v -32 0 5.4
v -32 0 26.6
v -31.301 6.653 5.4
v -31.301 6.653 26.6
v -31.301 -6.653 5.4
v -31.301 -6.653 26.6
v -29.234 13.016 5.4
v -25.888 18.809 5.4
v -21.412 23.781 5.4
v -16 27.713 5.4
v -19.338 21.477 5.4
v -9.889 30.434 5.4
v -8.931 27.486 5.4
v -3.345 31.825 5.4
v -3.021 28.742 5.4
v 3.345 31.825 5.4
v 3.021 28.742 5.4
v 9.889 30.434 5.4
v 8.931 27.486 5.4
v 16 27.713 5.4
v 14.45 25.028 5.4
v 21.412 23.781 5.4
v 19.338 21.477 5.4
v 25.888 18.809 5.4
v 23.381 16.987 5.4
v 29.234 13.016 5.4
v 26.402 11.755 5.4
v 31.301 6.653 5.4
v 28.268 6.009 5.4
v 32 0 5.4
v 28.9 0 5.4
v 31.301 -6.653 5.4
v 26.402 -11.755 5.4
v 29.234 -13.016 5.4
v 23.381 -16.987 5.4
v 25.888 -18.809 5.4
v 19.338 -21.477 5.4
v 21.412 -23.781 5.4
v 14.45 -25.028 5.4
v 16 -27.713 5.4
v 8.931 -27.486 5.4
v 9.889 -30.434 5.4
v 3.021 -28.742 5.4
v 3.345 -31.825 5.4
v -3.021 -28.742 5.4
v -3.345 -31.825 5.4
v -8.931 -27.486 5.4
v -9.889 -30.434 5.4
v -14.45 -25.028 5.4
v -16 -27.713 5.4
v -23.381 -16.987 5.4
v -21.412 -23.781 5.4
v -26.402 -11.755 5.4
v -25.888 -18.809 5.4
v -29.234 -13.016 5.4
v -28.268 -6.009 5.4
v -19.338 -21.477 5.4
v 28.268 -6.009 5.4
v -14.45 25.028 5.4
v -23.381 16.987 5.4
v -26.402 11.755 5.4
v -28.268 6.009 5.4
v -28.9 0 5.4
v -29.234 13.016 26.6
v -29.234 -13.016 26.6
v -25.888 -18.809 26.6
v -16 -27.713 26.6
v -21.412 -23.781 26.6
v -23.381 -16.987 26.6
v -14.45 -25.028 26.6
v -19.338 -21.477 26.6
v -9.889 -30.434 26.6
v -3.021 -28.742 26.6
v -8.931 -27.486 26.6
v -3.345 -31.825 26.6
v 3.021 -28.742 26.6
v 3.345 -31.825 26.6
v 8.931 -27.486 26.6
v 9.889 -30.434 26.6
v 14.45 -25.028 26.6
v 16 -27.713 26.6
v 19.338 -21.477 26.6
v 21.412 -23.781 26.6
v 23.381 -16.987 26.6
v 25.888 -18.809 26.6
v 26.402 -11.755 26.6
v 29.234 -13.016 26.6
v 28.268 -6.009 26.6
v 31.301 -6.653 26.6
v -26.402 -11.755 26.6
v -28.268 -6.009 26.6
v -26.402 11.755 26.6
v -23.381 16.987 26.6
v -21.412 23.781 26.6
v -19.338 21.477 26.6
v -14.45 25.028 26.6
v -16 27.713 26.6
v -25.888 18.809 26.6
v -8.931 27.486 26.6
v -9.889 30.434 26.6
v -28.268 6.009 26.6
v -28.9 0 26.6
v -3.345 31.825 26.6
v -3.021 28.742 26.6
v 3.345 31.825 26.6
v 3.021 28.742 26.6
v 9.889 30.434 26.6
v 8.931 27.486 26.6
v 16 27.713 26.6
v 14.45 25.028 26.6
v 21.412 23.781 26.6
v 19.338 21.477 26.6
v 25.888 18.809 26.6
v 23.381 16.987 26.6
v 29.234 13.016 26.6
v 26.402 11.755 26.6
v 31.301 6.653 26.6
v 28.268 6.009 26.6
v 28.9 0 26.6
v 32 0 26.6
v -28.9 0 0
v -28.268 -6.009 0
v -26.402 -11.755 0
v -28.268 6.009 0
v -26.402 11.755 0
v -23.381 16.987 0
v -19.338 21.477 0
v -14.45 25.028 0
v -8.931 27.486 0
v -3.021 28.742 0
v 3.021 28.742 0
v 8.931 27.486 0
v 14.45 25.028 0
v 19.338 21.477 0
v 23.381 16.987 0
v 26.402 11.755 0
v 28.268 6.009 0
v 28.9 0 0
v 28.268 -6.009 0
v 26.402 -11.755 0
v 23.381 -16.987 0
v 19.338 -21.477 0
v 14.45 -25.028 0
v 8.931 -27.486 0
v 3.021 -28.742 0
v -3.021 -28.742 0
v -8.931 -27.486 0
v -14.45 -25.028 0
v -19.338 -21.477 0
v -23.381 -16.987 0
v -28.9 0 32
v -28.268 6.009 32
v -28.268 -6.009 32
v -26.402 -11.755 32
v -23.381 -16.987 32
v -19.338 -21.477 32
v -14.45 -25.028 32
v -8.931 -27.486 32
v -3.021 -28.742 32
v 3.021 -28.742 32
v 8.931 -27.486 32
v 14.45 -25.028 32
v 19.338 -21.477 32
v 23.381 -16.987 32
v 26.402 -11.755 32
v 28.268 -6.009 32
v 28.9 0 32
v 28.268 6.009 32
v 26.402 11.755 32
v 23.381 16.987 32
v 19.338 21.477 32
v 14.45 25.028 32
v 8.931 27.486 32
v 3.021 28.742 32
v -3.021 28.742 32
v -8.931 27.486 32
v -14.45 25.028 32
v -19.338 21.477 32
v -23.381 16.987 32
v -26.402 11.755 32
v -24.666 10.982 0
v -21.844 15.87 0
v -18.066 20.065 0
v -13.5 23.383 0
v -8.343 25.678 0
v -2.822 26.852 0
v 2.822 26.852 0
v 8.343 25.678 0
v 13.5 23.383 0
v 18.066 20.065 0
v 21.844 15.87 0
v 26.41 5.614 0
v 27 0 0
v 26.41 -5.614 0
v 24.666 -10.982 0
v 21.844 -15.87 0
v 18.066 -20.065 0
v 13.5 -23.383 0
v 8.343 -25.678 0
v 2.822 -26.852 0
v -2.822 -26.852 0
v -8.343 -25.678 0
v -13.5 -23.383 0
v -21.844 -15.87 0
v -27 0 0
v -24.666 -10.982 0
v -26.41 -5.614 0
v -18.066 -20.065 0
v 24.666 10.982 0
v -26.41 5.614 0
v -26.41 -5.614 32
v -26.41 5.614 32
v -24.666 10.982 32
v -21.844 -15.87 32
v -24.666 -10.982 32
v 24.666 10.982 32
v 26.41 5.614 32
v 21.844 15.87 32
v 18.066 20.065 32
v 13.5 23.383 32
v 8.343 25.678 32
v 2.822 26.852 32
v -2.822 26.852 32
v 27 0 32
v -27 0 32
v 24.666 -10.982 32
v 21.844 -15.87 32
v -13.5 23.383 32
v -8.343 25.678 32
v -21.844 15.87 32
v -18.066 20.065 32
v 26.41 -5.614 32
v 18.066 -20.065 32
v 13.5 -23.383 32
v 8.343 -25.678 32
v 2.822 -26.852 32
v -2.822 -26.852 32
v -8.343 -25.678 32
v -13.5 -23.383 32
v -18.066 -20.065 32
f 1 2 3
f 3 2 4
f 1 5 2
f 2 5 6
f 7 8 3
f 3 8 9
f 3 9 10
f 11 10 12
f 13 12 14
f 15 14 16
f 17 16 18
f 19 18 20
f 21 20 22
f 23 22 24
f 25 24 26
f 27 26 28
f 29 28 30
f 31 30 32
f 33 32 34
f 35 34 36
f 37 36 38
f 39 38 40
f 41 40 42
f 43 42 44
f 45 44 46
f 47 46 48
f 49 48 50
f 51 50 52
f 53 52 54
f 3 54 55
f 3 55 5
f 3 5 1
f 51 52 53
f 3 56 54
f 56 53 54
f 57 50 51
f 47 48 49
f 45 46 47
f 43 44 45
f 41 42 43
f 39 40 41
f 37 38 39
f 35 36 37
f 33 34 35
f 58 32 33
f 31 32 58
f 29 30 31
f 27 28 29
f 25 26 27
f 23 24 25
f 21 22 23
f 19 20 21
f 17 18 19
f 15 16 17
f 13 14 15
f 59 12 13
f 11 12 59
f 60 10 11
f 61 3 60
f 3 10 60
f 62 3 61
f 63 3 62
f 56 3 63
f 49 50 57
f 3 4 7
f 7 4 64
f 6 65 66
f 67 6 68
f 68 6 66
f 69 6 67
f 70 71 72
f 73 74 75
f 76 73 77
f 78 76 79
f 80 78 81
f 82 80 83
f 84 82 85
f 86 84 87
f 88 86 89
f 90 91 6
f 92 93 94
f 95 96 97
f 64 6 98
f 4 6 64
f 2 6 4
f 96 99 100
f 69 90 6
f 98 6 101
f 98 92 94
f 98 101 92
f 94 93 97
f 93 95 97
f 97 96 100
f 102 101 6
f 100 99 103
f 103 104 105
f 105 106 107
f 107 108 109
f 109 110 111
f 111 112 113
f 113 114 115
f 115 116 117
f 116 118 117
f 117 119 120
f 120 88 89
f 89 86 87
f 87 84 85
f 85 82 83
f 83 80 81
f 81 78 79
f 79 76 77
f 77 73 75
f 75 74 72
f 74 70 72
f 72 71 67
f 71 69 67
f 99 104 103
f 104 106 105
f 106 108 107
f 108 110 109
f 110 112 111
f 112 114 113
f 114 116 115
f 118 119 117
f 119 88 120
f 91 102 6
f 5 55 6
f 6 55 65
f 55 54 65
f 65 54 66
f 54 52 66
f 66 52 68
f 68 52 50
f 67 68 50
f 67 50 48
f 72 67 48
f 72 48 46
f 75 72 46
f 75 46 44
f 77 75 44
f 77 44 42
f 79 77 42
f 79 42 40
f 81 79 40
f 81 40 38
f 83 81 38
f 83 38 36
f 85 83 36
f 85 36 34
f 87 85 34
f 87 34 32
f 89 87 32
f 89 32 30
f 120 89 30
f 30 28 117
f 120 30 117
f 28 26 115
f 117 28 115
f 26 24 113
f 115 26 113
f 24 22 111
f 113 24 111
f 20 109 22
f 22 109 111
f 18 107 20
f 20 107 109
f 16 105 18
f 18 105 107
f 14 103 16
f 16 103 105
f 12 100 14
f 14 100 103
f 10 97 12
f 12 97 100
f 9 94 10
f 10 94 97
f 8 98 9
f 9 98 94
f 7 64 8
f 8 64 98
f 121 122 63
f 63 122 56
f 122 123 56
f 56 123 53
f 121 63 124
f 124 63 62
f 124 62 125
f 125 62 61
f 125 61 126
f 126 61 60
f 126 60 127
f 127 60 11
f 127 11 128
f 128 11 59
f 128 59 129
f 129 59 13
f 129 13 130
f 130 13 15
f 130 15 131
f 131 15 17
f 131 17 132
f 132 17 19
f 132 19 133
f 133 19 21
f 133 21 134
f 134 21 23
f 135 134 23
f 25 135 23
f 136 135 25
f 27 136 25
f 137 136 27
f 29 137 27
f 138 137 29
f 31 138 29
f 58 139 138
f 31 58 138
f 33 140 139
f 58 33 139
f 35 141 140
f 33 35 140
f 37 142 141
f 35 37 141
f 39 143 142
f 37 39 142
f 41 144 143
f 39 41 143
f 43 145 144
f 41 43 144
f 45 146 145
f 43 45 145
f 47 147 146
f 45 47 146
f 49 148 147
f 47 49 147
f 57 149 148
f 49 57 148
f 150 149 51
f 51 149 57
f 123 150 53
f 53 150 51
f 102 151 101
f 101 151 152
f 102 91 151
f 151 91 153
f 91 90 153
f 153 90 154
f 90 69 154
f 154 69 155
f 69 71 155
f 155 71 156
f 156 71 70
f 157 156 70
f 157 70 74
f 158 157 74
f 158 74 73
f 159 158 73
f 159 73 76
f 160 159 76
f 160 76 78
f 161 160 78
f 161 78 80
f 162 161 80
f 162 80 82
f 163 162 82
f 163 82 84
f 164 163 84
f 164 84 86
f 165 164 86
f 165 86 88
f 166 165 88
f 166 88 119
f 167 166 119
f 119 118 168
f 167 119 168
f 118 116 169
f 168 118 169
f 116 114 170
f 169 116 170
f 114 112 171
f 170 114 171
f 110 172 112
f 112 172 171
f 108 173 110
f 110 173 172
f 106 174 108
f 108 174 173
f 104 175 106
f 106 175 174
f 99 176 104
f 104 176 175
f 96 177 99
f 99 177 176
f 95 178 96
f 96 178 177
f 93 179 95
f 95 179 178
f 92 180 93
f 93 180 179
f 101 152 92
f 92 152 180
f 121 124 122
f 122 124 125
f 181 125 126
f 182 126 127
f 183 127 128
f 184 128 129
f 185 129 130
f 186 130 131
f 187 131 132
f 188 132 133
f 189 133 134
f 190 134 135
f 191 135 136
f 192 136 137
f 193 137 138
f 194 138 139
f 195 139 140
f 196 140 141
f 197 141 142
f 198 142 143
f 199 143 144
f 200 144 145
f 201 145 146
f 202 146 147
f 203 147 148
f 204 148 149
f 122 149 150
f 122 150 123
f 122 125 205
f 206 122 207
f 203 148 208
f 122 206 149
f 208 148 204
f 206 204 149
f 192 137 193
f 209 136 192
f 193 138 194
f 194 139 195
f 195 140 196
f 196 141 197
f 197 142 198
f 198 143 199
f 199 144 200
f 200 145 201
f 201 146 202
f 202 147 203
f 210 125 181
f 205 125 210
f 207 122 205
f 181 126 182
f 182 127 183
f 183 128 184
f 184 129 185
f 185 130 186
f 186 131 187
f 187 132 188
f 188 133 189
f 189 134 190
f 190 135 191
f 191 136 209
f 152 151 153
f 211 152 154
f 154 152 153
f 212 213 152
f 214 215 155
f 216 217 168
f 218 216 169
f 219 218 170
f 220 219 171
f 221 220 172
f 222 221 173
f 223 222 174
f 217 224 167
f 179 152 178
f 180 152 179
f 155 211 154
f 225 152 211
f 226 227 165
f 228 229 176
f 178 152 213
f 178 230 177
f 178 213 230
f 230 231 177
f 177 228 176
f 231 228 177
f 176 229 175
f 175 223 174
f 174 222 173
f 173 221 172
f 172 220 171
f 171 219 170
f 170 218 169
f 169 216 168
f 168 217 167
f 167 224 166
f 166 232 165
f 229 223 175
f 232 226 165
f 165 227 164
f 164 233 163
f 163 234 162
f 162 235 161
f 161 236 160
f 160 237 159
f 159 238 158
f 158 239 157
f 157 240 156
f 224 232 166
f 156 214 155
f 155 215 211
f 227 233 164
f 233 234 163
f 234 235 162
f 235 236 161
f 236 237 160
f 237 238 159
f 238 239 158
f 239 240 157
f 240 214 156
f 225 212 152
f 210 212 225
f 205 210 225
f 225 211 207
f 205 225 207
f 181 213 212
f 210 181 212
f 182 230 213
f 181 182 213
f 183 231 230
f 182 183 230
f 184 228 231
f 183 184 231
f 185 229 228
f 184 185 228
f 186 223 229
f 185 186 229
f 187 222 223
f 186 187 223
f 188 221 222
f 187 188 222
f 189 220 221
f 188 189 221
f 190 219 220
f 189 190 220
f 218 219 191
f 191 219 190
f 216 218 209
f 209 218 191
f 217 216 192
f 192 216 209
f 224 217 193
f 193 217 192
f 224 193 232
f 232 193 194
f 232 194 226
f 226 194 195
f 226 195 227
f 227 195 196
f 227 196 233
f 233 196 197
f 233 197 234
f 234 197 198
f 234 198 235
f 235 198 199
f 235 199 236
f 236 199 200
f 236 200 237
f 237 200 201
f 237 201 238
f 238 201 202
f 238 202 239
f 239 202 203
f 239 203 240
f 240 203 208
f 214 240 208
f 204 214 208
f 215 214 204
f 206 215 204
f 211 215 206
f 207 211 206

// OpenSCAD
//Ancho de la pared
pared  = 3;
//Radio del centro hueco
radioC = 11;
//Alto de la capa de apertura
aperH = 6;
//Ancho de la apertura
aperW = 5;
//Ancho del lente macro
macroW = 9.3;
//Profundidad del macro
macroH = 3;
//Profundidad parte de atras y delante
profDelante = 6;
profAtras = 6;

//
//Alto del cilindro del Macro
conH = 10;
//Ancho de la base del macro
macroBW = 9;
macroFH = 6;
macroFW = 10;

//
//Cilindro del MacroConnector
mcW = 32;
mcH = 20;
mcConnH = 8.5;//Altura connector a ranura
mcPared = 5;
mcCejaH = 6;

//
// Cilindro del diffracter
diffH = 20;
diffBase = 2;

diffAreaX = 36;
diffAreaY = 25;
diffAreaZ = (3*diffBase);

diffBaseX = diffAreaX+10;
diffBaseY = diffAreaY+10;
diffBaseZ = diffBase;

difference(){	
	cylinder(r=mcW,diffH+(2*mcCejaH));

	translate([0, 0, -0.1])
	cejaExterior();

	translate([0, 0, diffH+mcCejaH+0.6])
	cejaExterior();

	translate([0, 0, -0.1])
	cylinder(r=mcW-mcPared,diffH+(2*mcCejaH)+1);

}


module cejaExterior(){	
	difference(){
		cylinder(r=mcW+1,mcCejaH-0.5);
		translate([0, 0, -0.1])
		cylinder(r=mcW-3.1,mcCejaH+0.1);
	}
}

module Macro(){
	difference(){
		cylinder(r=radioC+pared,mcConnH+conH-0.1);

		translate([0, 0, -0.5])
		cylinder(r=radioC+0.1,mcConnH);

		translate([0, 0, mcConnH-0.6])
		cylinder(r=macroBW,conH+0.6);
	
		translate([0, 0, mcConnH-0.6])
		cylinder(r=macroFW, macroFH+0.6);

	}
}



module cilindroPared(h){
	translate([0, 0, h/2]){
		difference(){
			cylinder(r=radioC+pared,h, center=true);
			cylinder(r=radioC,h+2, center=true);
		}
	}
}

module apertura(){
	//Crea apertura
	translate([0, 0, (aperH/2)+profDelante ]){
		difference(){
			cylinder(r=radioC+1,aperH,center=true);
			translate([0, 0, aperH-macroH]){
				cylinder(r=macroW/2,aperH,center=true);
			}
			cube([aperW,aperW,aperH+2],center=true);		
		}
	}
}
